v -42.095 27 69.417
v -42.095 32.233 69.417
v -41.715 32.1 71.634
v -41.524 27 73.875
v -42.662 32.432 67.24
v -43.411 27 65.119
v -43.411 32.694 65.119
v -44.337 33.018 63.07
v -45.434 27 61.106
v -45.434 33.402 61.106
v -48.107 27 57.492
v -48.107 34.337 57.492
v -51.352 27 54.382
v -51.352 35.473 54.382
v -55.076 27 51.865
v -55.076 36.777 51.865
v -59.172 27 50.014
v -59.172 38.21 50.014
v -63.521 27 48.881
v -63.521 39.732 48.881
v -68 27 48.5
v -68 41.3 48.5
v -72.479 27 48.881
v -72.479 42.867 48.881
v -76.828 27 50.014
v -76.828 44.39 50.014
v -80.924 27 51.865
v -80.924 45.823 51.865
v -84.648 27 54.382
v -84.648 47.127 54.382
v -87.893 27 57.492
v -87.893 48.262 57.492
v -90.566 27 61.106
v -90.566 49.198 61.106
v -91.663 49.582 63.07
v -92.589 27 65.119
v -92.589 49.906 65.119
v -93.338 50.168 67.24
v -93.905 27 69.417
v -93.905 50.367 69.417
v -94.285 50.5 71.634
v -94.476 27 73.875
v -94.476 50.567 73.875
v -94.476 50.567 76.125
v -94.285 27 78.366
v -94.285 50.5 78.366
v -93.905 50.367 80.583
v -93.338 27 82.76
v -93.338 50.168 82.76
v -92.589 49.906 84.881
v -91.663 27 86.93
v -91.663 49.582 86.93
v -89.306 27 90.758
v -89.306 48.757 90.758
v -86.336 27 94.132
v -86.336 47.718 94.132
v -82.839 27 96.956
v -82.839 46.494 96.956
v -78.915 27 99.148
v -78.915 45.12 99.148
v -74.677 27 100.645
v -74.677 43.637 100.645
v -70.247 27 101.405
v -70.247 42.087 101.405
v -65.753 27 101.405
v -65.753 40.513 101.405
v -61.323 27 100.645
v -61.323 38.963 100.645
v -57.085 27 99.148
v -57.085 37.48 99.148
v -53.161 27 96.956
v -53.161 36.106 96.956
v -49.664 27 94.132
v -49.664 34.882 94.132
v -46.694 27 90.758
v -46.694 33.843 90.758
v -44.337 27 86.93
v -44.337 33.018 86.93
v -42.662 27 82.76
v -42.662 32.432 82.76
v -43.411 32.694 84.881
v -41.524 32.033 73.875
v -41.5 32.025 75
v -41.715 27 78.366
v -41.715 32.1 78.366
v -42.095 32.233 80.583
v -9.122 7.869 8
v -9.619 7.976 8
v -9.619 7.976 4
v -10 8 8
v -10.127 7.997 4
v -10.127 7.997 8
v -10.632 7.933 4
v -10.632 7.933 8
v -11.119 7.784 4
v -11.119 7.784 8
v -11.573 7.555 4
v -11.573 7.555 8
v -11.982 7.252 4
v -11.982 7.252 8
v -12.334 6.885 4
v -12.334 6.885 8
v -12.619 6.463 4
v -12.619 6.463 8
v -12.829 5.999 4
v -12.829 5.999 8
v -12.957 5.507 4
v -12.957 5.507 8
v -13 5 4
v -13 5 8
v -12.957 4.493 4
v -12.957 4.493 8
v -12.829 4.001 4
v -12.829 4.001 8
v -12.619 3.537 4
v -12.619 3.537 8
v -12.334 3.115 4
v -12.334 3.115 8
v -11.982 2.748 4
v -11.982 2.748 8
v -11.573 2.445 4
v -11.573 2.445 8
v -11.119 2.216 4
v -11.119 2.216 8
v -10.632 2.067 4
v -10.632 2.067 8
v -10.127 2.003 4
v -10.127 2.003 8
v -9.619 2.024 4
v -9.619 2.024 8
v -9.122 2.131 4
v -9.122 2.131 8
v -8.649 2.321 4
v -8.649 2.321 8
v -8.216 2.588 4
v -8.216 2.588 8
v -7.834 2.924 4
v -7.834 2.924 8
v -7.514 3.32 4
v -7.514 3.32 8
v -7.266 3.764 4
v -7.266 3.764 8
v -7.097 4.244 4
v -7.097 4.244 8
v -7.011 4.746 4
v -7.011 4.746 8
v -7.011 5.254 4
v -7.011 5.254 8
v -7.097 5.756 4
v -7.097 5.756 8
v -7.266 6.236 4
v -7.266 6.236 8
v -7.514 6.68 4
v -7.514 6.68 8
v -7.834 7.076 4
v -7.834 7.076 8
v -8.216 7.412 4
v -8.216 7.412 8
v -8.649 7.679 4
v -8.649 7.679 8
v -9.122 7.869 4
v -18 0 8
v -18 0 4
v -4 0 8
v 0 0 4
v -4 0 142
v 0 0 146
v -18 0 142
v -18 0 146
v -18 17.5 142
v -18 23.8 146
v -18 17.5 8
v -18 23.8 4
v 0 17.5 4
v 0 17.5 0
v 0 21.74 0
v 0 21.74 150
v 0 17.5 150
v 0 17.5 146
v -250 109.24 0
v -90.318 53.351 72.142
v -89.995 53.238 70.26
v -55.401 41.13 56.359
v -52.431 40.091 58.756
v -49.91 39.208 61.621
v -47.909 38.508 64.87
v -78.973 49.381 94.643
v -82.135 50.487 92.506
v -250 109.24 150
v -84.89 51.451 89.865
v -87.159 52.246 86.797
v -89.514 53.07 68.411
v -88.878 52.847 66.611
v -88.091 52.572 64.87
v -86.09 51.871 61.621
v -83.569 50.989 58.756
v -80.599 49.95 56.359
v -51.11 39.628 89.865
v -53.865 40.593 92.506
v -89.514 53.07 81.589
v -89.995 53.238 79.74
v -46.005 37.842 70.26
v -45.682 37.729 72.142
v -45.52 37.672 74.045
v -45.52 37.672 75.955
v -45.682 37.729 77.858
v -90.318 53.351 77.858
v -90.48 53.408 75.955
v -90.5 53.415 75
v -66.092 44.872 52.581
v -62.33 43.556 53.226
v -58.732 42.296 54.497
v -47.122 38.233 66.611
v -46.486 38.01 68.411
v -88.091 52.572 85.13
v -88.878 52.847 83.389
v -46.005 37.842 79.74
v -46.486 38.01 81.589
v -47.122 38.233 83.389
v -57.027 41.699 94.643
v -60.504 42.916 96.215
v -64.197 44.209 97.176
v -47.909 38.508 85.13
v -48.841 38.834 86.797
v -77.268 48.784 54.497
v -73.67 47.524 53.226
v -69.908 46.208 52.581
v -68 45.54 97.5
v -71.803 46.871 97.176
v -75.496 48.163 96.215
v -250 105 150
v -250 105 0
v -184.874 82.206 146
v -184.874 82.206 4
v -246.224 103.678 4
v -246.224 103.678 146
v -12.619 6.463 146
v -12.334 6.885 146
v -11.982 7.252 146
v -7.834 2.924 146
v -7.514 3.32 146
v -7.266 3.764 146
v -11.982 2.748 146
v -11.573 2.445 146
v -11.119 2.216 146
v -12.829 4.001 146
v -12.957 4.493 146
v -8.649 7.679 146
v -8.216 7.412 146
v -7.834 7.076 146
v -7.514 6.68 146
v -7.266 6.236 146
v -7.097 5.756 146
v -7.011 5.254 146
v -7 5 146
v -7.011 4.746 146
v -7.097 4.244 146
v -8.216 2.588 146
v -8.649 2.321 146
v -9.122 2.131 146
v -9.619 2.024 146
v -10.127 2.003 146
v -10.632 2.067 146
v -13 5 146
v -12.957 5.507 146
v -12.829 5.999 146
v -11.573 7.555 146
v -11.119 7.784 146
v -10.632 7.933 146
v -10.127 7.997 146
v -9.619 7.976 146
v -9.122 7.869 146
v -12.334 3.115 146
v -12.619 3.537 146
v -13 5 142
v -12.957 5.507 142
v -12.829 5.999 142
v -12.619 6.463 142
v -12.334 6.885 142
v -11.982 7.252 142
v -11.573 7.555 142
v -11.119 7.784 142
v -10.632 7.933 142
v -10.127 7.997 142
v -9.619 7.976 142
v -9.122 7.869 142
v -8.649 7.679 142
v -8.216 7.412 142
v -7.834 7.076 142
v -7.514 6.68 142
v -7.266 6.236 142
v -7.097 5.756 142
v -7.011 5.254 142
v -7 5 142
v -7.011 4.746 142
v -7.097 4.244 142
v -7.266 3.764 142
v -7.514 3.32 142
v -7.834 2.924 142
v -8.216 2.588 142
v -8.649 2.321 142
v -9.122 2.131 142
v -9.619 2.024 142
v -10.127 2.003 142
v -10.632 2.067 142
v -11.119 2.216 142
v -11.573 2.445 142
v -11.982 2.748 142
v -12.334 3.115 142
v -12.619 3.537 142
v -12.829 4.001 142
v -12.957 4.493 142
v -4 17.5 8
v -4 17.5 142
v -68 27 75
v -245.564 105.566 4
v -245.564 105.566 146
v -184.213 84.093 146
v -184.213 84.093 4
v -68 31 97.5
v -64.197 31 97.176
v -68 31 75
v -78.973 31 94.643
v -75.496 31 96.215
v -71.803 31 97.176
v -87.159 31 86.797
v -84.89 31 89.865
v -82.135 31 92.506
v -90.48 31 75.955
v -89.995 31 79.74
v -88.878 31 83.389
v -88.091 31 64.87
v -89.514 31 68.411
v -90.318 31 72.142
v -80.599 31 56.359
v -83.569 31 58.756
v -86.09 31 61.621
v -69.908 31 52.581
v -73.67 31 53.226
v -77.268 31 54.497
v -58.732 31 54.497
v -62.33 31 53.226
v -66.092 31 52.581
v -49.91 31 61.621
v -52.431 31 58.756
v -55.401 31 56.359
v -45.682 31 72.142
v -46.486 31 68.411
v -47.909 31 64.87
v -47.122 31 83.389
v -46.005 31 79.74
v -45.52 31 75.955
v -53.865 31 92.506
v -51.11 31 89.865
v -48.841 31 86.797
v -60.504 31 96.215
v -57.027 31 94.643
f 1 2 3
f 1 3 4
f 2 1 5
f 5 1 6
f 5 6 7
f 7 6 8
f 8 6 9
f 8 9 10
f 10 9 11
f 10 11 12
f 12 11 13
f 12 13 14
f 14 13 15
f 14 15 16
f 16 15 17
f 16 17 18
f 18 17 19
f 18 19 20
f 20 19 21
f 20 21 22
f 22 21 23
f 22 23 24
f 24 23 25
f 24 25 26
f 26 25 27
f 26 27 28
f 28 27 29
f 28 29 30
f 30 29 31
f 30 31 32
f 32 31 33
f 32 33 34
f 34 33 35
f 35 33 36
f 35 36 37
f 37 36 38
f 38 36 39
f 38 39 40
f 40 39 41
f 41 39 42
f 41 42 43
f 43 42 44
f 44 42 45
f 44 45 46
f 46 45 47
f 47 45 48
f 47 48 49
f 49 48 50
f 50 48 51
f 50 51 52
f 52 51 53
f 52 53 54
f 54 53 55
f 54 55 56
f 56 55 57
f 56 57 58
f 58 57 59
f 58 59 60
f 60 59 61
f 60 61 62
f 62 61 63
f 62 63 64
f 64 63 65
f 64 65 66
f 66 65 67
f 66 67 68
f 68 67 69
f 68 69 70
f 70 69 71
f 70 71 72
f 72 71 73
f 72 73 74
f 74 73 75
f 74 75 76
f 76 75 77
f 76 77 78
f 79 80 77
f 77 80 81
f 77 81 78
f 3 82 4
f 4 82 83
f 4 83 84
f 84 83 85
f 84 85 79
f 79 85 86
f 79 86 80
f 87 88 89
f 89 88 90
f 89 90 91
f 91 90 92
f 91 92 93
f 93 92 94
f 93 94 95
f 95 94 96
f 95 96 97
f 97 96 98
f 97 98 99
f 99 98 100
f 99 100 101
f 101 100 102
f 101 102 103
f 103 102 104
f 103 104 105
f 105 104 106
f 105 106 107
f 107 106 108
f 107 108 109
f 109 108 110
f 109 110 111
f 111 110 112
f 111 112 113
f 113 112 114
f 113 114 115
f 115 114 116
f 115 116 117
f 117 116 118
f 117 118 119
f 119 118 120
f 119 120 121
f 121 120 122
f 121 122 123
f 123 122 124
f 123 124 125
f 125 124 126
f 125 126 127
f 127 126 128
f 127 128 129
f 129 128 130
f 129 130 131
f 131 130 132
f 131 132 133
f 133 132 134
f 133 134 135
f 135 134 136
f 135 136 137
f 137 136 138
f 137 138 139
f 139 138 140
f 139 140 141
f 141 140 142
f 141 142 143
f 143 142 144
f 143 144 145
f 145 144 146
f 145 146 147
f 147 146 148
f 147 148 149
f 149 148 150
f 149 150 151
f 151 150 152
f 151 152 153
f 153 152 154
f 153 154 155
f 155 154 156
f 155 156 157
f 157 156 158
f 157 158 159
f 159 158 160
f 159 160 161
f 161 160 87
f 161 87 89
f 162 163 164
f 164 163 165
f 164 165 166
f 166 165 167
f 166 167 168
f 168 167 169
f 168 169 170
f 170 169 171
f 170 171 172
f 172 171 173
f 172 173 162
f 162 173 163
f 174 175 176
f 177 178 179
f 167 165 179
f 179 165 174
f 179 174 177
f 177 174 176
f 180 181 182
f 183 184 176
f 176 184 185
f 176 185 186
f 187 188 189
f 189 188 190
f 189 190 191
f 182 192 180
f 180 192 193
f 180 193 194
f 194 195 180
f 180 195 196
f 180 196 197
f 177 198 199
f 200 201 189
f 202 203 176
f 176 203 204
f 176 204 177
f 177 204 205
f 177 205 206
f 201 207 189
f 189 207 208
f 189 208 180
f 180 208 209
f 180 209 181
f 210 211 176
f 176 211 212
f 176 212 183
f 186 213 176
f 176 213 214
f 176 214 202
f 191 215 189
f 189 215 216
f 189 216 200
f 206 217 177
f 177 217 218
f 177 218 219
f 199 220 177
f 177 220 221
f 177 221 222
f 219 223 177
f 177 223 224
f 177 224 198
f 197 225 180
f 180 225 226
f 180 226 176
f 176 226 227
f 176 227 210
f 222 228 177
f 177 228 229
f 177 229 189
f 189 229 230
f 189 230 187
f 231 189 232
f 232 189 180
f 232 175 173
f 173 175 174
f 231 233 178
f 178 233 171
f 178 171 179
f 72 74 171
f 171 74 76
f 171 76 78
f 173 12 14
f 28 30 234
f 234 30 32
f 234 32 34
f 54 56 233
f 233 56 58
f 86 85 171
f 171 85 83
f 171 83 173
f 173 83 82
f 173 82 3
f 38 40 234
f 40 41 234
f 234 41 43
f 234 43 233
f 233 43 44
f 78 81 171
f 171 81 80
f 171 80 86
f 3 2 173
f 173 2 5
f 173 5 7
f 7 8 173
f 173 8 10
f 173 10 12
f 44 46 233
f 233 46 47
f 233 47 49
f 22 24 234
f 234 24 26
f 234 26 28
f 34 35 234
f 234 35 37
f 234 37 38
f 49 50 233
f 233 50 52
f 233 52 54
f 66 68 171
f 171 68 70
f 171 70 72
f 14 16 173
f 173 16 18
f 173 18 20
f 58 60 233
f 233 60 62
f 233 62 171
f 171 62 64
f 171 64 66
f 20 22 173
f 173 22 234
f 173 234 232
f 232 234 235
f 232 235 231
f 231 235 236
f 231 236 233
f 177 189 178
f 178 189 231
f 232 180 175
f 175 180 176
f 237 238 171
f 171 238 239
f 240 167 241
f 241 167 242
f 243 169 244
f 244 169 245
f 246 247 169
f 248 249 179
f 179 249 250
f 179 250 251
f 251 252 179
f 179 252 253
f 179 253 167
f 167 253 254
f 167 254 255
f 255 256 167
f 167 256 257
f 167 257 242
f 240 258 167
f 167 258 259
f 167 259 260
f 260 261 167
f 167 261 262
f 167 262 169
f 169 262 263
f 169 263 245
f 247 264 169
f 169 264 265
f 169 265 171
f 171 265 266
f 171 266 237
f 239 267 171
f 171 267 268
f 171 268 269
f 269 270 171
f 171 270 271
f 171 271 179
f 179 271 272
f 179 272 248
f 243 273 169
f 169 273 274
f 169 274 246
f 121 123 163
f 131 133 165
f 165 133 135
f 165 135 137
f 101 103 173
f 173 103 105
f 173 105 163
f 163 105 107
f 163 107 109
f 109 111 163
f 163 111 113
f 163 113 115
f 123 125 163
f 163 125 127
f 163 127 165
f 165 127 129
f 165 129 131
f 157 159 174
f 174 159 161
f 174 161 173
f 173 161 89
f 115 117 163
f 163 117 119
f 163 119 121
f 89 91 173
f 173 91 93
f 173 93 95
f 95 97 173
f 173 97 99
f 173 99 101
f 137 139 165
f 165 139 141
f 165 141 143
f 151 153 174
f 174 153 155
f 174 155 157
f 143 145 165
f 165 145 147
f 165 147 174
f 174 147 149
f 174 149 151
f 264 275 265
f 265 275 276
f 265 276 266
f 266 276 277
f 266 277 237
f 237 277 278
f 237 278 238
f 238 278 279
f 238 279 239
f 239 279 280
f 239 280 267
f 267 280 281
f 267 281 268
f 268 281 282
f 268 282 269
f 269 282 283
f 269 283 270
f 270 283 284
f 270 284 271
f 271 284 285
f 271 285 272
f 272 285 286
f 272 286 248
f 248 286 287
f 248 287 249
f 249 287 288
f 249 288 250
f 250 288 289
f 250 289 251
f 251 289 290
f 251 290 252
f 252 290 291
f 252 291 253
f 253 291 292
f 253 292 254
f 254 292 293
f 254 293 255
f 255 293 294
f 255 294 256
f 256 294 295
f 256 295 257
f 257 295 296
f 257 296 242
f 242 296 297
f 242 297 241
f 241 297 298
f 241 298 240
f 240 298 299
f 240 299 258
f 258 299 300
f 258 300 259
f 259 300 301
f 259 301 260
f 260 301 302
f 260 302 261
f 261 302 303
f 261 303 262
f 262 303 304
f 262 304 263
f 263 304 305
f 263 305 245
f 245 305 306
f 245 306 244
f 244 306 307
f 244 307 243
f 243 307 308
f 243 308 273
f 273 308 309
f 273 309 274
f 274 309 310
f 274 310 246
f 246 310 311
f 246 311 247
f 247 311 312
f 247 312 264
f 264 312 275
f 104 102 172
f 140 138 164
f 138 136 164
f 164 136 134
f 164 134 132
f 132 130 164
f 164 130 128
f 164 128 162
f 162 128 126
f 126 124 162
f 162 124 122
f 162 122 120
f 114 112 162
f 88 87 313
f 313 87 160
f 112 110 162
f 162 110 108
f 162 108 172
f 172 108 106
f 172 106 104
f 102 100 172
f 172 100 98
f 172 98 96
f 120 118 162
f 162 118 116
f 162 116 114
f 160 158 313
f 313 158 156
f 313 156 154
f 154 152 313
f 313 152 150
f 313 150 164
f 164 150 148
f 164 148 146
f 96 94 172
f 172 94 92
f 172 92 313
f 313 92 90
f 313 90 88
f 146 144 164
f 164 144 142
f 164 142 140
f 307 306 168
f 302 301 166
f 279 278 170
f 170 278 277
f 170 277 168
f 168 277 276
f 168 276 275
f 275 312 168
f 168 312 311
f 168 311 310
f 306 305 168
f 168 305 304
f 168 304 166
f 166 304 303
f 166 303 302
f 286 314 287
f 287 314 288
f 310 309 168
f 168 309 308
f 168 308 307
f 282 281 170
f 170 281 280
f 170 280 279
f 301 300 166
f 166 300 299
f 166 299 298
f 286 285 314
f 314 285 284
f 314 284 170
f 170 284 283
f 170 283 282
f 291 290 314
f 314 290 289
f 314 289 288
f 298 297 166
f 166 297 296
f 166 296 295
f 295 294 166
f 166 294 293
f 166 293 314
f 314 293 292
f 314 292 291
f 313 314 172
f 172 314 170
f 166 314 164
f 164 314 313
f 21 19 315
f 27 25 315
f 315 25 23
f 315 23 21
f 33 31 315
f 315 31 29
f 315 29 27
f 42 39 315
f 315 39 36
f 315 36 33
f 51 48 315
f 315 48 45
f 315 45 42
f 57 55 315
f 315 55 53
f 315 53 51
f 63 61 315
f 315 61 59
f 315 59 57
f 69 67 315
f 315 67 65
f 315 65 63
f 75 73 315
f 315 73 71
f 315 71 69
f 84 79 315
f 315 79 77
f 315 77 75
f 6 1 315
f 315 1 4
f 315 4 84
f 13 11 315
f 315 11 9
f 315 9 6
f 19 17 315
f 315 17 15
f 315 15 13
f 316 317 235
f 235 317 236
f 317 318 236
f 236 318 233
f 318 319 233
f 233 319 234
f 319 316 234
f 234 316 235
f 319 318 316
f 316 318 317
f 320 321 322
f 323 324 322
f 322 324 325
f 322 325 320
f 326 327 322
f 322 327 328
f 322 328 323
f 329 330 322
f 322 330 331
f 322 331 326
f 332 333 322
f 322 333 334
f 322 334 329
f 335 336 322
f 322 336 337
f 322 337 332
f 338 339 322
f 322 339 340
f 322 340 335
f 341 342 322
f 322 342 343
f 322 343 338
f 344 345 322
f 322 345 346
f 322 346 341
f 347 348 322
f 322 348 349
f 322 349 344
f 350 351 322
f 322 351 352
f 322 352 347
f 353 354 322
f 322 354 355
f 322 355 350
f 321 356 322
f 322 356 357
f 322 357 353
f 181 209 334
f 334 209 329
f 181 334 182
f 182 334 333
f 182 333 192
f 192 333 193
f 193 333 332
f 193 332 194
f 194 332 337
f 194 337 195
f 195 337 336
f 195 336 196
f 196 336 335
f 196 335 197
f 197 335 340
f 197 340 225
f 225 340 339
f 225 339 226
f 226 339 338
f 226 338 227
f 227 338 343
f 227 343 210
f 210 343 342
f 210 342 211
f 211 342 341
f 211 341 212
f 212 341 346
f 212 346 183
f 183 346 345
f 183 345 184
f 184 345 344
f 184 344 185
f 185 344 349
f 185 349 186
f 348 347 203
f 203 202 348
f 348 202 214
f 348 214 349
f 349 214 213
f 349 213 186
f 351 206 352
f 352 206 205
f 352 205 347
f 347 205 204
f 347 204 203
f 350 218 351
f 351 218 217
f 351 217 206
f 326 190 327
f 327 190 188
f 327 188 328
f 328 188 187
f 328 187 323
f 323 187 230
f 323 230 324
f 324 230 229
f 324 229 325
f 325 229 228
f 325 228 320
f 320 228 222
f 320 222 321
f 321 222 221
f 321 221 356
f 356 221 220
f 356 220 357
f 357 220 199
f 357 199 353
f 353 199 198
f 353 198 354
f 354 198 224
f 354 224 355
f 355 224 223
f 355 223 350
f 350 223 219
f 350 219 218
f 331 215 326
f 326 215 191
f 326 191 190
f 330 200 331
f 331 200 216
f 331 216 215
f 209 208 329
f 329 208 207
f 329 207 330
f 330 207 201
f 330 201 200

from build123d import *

# Parameters (mm, degrees)
BOSS_EXTRUDE1_DEPTH = 150
CUT_EXTRUDE1_DEPTH  = 4
CUT_EXTRUDE2_DEPTH  = 4
SKETCH4_R           = 3
CUT_EXTRUDE3_DEPTH  = 162
SKETCH6_W           = 134
SKETCH6_H           = 17.5
CUT_EXTRUDE4_DEPTH  = 14
SKETCH9_R           = 22.5
CUT_EXTRUDE5_DEPTH  = 83
SKETCH10_R          = 26.5
BOSS_EXTRUDE2_DEPTH = 55
SKETCH12_R          = 26.5
CUT_EXTRUDE6_DEPTH  = 27
SKETCH13_R          = 22.5
CUT_EXTRUDE7_DEPTH  = 24
SKETCH14_W          = 65
SKETCH14_H          = 142
CUT_EXTRUDE8_DEPTH  = 2
SKETCH15_W          = 73.049040635
SKETCH15_H          = 56.643959476
CUT_EXTRUDE9_DEPTH  = 22


with BuildPart() as part:
    # Sketch1 → Boss-Extrude1 (new body)
    with BuildSketch(Plane.XY):
        Polygon((0, 0), (0, 21.74), (-249.999833435, 109.239715329), (-249.999833435, 104.999731628), (-18, 23.8), (-18, 0), align=None)
    extrude(amount=BOSS_EXTRUDE1_DEPTH)

    # Sketch2 → Cut-Extrude1 (cut)
    with BuildSketch(Plane.XY.offset(150)):
        Polygon((-18, 23.8), (0, 17.500016299), (0, 0), (-18, 0), align=None)
    extrude(amount=-CUT_EXTRUDE1_DEPTH, mode=Mode.SUBTRACT)

    # Sketch3 → Cut-Extrude2 (cut)
    with BuildSketch(Plane(origin=(0, 0, 0), x_dir=(-1, 0, 0), z_dir=(0, 0, -1))):
        Polygon((18, 0), (18, 23.8), (0, 17.500016299), (0, 0), align=None)
    extrude(amount=-CUT_EXTRUDE2_DEPTH, mode=Mode.SUBTRACT)

    # Sketch4 → Cut-Extrude3 (cut)
    with BuildSketch(Plane(origin=(0, 0, 4), x_dir=(-1, 0, 0), z_dir=(0, 0, -1))):
        with Locations((10, 5)):
            Circle(SKETCH4_R)
    extrude(amount=-CUT_EXTRUDE3_DEPTH, mode=Mode.SUBTRACT)

    # Sketch6 → Cut-Extrude4 (cut)
    with BuildSketch(Plane.ZY.offset(18)):
        with Locations((75, 8.75)):
            Rectangle(SKETCH6_W, SKETCH6_H)
    extrude(amount=-CUT_EXTRUDE4_DEPTH, mode=Mode.SUBTRACT)

    # Sketch9 → Cut-Extrude5 (cut)
    with BuildSketch(Plane(origin=(0, 0, 0), x_dir=(1, 0, 0), z_dir=(0, 1, 0))):
        with Locations((-68, -75)):
            Circle(SKETCH9_R)
    extrude(amount=CUT_EXTRUDE5_DEPTH, mode=Mode.SUBTRACT)

    # Sketch10 → Boss-Extrude2 (add)
    with BuildSketch(Plane(origin=(0, 0, 0), x_dir=(1, 0, 0), z_dir=(0, 1, 0))):
        with Locations((-68, -75)):
            Circle(SKETCH10_R)
    extrude(amount=BOSS_EXTRUDE2_DEPTH)

    # Sketch12 → Cut-Extrude6 (cut)
    with BuildSketch(Plane.XZ):
        with Locations(Location((-68, 75, 0), (0, 0, 270))):
            Circle(SKETCH12_R)
    extrude(amount=-CUT_EXTRUDE6_DEPTH, mode=Mode.SUBTRACT)

    # Sketch13 → Cut-Extrude7 (cut)
    with BuildSketch(Plane(origin=(0, 55, 0), x_dir=(1, 0, 0), z_dir=(0, 1, 0))):
        with Locations(Location((-68, -75, 0), (0, 0, 270))):
            Circle(SKETCH13_R)
    extrude(amount=-CUT_EXTRUDE7_DEPTH, mode=Mode.SUBTRACT)

    # Sketch14 → Cut-Extrude8 (cut)
    with BuildSketch(Plane(origin=(5.456564202, 15.590223769, 0), x_dir=(0.9438586228518121, -0.3303496633391366, 0), z_dir=(-0.3303496633391366, -0.9438586228518121, 0))):
        with Locations((-234.151124493, 75)):
            Rectangle(SKETCH14_W, SKETCH14_H)
    extrude(amount=-CUT_EXTRUDE8_DEPTH, mode=Mode.SUBTRACT)

    # Sketch15 → Cut-Extrude9 (cut)
    with BuildSketch(Plane(origin=(6.778605444, 19.367494233, 0), x_dir=(0.9438586228518122, -0.330349663339136, 0), z_dir=(0.330349663339136, 0.9438586228518122, 0))):
        with Locations((-76.286643032, -75.675013618)):
            Rectangle(SKETCH15_W, SKETCH15_H)
    extrude(amount=CUT_EXTRUDE9_DEPTH, mode=Mode.SUBTRACT)


solid = part.part
